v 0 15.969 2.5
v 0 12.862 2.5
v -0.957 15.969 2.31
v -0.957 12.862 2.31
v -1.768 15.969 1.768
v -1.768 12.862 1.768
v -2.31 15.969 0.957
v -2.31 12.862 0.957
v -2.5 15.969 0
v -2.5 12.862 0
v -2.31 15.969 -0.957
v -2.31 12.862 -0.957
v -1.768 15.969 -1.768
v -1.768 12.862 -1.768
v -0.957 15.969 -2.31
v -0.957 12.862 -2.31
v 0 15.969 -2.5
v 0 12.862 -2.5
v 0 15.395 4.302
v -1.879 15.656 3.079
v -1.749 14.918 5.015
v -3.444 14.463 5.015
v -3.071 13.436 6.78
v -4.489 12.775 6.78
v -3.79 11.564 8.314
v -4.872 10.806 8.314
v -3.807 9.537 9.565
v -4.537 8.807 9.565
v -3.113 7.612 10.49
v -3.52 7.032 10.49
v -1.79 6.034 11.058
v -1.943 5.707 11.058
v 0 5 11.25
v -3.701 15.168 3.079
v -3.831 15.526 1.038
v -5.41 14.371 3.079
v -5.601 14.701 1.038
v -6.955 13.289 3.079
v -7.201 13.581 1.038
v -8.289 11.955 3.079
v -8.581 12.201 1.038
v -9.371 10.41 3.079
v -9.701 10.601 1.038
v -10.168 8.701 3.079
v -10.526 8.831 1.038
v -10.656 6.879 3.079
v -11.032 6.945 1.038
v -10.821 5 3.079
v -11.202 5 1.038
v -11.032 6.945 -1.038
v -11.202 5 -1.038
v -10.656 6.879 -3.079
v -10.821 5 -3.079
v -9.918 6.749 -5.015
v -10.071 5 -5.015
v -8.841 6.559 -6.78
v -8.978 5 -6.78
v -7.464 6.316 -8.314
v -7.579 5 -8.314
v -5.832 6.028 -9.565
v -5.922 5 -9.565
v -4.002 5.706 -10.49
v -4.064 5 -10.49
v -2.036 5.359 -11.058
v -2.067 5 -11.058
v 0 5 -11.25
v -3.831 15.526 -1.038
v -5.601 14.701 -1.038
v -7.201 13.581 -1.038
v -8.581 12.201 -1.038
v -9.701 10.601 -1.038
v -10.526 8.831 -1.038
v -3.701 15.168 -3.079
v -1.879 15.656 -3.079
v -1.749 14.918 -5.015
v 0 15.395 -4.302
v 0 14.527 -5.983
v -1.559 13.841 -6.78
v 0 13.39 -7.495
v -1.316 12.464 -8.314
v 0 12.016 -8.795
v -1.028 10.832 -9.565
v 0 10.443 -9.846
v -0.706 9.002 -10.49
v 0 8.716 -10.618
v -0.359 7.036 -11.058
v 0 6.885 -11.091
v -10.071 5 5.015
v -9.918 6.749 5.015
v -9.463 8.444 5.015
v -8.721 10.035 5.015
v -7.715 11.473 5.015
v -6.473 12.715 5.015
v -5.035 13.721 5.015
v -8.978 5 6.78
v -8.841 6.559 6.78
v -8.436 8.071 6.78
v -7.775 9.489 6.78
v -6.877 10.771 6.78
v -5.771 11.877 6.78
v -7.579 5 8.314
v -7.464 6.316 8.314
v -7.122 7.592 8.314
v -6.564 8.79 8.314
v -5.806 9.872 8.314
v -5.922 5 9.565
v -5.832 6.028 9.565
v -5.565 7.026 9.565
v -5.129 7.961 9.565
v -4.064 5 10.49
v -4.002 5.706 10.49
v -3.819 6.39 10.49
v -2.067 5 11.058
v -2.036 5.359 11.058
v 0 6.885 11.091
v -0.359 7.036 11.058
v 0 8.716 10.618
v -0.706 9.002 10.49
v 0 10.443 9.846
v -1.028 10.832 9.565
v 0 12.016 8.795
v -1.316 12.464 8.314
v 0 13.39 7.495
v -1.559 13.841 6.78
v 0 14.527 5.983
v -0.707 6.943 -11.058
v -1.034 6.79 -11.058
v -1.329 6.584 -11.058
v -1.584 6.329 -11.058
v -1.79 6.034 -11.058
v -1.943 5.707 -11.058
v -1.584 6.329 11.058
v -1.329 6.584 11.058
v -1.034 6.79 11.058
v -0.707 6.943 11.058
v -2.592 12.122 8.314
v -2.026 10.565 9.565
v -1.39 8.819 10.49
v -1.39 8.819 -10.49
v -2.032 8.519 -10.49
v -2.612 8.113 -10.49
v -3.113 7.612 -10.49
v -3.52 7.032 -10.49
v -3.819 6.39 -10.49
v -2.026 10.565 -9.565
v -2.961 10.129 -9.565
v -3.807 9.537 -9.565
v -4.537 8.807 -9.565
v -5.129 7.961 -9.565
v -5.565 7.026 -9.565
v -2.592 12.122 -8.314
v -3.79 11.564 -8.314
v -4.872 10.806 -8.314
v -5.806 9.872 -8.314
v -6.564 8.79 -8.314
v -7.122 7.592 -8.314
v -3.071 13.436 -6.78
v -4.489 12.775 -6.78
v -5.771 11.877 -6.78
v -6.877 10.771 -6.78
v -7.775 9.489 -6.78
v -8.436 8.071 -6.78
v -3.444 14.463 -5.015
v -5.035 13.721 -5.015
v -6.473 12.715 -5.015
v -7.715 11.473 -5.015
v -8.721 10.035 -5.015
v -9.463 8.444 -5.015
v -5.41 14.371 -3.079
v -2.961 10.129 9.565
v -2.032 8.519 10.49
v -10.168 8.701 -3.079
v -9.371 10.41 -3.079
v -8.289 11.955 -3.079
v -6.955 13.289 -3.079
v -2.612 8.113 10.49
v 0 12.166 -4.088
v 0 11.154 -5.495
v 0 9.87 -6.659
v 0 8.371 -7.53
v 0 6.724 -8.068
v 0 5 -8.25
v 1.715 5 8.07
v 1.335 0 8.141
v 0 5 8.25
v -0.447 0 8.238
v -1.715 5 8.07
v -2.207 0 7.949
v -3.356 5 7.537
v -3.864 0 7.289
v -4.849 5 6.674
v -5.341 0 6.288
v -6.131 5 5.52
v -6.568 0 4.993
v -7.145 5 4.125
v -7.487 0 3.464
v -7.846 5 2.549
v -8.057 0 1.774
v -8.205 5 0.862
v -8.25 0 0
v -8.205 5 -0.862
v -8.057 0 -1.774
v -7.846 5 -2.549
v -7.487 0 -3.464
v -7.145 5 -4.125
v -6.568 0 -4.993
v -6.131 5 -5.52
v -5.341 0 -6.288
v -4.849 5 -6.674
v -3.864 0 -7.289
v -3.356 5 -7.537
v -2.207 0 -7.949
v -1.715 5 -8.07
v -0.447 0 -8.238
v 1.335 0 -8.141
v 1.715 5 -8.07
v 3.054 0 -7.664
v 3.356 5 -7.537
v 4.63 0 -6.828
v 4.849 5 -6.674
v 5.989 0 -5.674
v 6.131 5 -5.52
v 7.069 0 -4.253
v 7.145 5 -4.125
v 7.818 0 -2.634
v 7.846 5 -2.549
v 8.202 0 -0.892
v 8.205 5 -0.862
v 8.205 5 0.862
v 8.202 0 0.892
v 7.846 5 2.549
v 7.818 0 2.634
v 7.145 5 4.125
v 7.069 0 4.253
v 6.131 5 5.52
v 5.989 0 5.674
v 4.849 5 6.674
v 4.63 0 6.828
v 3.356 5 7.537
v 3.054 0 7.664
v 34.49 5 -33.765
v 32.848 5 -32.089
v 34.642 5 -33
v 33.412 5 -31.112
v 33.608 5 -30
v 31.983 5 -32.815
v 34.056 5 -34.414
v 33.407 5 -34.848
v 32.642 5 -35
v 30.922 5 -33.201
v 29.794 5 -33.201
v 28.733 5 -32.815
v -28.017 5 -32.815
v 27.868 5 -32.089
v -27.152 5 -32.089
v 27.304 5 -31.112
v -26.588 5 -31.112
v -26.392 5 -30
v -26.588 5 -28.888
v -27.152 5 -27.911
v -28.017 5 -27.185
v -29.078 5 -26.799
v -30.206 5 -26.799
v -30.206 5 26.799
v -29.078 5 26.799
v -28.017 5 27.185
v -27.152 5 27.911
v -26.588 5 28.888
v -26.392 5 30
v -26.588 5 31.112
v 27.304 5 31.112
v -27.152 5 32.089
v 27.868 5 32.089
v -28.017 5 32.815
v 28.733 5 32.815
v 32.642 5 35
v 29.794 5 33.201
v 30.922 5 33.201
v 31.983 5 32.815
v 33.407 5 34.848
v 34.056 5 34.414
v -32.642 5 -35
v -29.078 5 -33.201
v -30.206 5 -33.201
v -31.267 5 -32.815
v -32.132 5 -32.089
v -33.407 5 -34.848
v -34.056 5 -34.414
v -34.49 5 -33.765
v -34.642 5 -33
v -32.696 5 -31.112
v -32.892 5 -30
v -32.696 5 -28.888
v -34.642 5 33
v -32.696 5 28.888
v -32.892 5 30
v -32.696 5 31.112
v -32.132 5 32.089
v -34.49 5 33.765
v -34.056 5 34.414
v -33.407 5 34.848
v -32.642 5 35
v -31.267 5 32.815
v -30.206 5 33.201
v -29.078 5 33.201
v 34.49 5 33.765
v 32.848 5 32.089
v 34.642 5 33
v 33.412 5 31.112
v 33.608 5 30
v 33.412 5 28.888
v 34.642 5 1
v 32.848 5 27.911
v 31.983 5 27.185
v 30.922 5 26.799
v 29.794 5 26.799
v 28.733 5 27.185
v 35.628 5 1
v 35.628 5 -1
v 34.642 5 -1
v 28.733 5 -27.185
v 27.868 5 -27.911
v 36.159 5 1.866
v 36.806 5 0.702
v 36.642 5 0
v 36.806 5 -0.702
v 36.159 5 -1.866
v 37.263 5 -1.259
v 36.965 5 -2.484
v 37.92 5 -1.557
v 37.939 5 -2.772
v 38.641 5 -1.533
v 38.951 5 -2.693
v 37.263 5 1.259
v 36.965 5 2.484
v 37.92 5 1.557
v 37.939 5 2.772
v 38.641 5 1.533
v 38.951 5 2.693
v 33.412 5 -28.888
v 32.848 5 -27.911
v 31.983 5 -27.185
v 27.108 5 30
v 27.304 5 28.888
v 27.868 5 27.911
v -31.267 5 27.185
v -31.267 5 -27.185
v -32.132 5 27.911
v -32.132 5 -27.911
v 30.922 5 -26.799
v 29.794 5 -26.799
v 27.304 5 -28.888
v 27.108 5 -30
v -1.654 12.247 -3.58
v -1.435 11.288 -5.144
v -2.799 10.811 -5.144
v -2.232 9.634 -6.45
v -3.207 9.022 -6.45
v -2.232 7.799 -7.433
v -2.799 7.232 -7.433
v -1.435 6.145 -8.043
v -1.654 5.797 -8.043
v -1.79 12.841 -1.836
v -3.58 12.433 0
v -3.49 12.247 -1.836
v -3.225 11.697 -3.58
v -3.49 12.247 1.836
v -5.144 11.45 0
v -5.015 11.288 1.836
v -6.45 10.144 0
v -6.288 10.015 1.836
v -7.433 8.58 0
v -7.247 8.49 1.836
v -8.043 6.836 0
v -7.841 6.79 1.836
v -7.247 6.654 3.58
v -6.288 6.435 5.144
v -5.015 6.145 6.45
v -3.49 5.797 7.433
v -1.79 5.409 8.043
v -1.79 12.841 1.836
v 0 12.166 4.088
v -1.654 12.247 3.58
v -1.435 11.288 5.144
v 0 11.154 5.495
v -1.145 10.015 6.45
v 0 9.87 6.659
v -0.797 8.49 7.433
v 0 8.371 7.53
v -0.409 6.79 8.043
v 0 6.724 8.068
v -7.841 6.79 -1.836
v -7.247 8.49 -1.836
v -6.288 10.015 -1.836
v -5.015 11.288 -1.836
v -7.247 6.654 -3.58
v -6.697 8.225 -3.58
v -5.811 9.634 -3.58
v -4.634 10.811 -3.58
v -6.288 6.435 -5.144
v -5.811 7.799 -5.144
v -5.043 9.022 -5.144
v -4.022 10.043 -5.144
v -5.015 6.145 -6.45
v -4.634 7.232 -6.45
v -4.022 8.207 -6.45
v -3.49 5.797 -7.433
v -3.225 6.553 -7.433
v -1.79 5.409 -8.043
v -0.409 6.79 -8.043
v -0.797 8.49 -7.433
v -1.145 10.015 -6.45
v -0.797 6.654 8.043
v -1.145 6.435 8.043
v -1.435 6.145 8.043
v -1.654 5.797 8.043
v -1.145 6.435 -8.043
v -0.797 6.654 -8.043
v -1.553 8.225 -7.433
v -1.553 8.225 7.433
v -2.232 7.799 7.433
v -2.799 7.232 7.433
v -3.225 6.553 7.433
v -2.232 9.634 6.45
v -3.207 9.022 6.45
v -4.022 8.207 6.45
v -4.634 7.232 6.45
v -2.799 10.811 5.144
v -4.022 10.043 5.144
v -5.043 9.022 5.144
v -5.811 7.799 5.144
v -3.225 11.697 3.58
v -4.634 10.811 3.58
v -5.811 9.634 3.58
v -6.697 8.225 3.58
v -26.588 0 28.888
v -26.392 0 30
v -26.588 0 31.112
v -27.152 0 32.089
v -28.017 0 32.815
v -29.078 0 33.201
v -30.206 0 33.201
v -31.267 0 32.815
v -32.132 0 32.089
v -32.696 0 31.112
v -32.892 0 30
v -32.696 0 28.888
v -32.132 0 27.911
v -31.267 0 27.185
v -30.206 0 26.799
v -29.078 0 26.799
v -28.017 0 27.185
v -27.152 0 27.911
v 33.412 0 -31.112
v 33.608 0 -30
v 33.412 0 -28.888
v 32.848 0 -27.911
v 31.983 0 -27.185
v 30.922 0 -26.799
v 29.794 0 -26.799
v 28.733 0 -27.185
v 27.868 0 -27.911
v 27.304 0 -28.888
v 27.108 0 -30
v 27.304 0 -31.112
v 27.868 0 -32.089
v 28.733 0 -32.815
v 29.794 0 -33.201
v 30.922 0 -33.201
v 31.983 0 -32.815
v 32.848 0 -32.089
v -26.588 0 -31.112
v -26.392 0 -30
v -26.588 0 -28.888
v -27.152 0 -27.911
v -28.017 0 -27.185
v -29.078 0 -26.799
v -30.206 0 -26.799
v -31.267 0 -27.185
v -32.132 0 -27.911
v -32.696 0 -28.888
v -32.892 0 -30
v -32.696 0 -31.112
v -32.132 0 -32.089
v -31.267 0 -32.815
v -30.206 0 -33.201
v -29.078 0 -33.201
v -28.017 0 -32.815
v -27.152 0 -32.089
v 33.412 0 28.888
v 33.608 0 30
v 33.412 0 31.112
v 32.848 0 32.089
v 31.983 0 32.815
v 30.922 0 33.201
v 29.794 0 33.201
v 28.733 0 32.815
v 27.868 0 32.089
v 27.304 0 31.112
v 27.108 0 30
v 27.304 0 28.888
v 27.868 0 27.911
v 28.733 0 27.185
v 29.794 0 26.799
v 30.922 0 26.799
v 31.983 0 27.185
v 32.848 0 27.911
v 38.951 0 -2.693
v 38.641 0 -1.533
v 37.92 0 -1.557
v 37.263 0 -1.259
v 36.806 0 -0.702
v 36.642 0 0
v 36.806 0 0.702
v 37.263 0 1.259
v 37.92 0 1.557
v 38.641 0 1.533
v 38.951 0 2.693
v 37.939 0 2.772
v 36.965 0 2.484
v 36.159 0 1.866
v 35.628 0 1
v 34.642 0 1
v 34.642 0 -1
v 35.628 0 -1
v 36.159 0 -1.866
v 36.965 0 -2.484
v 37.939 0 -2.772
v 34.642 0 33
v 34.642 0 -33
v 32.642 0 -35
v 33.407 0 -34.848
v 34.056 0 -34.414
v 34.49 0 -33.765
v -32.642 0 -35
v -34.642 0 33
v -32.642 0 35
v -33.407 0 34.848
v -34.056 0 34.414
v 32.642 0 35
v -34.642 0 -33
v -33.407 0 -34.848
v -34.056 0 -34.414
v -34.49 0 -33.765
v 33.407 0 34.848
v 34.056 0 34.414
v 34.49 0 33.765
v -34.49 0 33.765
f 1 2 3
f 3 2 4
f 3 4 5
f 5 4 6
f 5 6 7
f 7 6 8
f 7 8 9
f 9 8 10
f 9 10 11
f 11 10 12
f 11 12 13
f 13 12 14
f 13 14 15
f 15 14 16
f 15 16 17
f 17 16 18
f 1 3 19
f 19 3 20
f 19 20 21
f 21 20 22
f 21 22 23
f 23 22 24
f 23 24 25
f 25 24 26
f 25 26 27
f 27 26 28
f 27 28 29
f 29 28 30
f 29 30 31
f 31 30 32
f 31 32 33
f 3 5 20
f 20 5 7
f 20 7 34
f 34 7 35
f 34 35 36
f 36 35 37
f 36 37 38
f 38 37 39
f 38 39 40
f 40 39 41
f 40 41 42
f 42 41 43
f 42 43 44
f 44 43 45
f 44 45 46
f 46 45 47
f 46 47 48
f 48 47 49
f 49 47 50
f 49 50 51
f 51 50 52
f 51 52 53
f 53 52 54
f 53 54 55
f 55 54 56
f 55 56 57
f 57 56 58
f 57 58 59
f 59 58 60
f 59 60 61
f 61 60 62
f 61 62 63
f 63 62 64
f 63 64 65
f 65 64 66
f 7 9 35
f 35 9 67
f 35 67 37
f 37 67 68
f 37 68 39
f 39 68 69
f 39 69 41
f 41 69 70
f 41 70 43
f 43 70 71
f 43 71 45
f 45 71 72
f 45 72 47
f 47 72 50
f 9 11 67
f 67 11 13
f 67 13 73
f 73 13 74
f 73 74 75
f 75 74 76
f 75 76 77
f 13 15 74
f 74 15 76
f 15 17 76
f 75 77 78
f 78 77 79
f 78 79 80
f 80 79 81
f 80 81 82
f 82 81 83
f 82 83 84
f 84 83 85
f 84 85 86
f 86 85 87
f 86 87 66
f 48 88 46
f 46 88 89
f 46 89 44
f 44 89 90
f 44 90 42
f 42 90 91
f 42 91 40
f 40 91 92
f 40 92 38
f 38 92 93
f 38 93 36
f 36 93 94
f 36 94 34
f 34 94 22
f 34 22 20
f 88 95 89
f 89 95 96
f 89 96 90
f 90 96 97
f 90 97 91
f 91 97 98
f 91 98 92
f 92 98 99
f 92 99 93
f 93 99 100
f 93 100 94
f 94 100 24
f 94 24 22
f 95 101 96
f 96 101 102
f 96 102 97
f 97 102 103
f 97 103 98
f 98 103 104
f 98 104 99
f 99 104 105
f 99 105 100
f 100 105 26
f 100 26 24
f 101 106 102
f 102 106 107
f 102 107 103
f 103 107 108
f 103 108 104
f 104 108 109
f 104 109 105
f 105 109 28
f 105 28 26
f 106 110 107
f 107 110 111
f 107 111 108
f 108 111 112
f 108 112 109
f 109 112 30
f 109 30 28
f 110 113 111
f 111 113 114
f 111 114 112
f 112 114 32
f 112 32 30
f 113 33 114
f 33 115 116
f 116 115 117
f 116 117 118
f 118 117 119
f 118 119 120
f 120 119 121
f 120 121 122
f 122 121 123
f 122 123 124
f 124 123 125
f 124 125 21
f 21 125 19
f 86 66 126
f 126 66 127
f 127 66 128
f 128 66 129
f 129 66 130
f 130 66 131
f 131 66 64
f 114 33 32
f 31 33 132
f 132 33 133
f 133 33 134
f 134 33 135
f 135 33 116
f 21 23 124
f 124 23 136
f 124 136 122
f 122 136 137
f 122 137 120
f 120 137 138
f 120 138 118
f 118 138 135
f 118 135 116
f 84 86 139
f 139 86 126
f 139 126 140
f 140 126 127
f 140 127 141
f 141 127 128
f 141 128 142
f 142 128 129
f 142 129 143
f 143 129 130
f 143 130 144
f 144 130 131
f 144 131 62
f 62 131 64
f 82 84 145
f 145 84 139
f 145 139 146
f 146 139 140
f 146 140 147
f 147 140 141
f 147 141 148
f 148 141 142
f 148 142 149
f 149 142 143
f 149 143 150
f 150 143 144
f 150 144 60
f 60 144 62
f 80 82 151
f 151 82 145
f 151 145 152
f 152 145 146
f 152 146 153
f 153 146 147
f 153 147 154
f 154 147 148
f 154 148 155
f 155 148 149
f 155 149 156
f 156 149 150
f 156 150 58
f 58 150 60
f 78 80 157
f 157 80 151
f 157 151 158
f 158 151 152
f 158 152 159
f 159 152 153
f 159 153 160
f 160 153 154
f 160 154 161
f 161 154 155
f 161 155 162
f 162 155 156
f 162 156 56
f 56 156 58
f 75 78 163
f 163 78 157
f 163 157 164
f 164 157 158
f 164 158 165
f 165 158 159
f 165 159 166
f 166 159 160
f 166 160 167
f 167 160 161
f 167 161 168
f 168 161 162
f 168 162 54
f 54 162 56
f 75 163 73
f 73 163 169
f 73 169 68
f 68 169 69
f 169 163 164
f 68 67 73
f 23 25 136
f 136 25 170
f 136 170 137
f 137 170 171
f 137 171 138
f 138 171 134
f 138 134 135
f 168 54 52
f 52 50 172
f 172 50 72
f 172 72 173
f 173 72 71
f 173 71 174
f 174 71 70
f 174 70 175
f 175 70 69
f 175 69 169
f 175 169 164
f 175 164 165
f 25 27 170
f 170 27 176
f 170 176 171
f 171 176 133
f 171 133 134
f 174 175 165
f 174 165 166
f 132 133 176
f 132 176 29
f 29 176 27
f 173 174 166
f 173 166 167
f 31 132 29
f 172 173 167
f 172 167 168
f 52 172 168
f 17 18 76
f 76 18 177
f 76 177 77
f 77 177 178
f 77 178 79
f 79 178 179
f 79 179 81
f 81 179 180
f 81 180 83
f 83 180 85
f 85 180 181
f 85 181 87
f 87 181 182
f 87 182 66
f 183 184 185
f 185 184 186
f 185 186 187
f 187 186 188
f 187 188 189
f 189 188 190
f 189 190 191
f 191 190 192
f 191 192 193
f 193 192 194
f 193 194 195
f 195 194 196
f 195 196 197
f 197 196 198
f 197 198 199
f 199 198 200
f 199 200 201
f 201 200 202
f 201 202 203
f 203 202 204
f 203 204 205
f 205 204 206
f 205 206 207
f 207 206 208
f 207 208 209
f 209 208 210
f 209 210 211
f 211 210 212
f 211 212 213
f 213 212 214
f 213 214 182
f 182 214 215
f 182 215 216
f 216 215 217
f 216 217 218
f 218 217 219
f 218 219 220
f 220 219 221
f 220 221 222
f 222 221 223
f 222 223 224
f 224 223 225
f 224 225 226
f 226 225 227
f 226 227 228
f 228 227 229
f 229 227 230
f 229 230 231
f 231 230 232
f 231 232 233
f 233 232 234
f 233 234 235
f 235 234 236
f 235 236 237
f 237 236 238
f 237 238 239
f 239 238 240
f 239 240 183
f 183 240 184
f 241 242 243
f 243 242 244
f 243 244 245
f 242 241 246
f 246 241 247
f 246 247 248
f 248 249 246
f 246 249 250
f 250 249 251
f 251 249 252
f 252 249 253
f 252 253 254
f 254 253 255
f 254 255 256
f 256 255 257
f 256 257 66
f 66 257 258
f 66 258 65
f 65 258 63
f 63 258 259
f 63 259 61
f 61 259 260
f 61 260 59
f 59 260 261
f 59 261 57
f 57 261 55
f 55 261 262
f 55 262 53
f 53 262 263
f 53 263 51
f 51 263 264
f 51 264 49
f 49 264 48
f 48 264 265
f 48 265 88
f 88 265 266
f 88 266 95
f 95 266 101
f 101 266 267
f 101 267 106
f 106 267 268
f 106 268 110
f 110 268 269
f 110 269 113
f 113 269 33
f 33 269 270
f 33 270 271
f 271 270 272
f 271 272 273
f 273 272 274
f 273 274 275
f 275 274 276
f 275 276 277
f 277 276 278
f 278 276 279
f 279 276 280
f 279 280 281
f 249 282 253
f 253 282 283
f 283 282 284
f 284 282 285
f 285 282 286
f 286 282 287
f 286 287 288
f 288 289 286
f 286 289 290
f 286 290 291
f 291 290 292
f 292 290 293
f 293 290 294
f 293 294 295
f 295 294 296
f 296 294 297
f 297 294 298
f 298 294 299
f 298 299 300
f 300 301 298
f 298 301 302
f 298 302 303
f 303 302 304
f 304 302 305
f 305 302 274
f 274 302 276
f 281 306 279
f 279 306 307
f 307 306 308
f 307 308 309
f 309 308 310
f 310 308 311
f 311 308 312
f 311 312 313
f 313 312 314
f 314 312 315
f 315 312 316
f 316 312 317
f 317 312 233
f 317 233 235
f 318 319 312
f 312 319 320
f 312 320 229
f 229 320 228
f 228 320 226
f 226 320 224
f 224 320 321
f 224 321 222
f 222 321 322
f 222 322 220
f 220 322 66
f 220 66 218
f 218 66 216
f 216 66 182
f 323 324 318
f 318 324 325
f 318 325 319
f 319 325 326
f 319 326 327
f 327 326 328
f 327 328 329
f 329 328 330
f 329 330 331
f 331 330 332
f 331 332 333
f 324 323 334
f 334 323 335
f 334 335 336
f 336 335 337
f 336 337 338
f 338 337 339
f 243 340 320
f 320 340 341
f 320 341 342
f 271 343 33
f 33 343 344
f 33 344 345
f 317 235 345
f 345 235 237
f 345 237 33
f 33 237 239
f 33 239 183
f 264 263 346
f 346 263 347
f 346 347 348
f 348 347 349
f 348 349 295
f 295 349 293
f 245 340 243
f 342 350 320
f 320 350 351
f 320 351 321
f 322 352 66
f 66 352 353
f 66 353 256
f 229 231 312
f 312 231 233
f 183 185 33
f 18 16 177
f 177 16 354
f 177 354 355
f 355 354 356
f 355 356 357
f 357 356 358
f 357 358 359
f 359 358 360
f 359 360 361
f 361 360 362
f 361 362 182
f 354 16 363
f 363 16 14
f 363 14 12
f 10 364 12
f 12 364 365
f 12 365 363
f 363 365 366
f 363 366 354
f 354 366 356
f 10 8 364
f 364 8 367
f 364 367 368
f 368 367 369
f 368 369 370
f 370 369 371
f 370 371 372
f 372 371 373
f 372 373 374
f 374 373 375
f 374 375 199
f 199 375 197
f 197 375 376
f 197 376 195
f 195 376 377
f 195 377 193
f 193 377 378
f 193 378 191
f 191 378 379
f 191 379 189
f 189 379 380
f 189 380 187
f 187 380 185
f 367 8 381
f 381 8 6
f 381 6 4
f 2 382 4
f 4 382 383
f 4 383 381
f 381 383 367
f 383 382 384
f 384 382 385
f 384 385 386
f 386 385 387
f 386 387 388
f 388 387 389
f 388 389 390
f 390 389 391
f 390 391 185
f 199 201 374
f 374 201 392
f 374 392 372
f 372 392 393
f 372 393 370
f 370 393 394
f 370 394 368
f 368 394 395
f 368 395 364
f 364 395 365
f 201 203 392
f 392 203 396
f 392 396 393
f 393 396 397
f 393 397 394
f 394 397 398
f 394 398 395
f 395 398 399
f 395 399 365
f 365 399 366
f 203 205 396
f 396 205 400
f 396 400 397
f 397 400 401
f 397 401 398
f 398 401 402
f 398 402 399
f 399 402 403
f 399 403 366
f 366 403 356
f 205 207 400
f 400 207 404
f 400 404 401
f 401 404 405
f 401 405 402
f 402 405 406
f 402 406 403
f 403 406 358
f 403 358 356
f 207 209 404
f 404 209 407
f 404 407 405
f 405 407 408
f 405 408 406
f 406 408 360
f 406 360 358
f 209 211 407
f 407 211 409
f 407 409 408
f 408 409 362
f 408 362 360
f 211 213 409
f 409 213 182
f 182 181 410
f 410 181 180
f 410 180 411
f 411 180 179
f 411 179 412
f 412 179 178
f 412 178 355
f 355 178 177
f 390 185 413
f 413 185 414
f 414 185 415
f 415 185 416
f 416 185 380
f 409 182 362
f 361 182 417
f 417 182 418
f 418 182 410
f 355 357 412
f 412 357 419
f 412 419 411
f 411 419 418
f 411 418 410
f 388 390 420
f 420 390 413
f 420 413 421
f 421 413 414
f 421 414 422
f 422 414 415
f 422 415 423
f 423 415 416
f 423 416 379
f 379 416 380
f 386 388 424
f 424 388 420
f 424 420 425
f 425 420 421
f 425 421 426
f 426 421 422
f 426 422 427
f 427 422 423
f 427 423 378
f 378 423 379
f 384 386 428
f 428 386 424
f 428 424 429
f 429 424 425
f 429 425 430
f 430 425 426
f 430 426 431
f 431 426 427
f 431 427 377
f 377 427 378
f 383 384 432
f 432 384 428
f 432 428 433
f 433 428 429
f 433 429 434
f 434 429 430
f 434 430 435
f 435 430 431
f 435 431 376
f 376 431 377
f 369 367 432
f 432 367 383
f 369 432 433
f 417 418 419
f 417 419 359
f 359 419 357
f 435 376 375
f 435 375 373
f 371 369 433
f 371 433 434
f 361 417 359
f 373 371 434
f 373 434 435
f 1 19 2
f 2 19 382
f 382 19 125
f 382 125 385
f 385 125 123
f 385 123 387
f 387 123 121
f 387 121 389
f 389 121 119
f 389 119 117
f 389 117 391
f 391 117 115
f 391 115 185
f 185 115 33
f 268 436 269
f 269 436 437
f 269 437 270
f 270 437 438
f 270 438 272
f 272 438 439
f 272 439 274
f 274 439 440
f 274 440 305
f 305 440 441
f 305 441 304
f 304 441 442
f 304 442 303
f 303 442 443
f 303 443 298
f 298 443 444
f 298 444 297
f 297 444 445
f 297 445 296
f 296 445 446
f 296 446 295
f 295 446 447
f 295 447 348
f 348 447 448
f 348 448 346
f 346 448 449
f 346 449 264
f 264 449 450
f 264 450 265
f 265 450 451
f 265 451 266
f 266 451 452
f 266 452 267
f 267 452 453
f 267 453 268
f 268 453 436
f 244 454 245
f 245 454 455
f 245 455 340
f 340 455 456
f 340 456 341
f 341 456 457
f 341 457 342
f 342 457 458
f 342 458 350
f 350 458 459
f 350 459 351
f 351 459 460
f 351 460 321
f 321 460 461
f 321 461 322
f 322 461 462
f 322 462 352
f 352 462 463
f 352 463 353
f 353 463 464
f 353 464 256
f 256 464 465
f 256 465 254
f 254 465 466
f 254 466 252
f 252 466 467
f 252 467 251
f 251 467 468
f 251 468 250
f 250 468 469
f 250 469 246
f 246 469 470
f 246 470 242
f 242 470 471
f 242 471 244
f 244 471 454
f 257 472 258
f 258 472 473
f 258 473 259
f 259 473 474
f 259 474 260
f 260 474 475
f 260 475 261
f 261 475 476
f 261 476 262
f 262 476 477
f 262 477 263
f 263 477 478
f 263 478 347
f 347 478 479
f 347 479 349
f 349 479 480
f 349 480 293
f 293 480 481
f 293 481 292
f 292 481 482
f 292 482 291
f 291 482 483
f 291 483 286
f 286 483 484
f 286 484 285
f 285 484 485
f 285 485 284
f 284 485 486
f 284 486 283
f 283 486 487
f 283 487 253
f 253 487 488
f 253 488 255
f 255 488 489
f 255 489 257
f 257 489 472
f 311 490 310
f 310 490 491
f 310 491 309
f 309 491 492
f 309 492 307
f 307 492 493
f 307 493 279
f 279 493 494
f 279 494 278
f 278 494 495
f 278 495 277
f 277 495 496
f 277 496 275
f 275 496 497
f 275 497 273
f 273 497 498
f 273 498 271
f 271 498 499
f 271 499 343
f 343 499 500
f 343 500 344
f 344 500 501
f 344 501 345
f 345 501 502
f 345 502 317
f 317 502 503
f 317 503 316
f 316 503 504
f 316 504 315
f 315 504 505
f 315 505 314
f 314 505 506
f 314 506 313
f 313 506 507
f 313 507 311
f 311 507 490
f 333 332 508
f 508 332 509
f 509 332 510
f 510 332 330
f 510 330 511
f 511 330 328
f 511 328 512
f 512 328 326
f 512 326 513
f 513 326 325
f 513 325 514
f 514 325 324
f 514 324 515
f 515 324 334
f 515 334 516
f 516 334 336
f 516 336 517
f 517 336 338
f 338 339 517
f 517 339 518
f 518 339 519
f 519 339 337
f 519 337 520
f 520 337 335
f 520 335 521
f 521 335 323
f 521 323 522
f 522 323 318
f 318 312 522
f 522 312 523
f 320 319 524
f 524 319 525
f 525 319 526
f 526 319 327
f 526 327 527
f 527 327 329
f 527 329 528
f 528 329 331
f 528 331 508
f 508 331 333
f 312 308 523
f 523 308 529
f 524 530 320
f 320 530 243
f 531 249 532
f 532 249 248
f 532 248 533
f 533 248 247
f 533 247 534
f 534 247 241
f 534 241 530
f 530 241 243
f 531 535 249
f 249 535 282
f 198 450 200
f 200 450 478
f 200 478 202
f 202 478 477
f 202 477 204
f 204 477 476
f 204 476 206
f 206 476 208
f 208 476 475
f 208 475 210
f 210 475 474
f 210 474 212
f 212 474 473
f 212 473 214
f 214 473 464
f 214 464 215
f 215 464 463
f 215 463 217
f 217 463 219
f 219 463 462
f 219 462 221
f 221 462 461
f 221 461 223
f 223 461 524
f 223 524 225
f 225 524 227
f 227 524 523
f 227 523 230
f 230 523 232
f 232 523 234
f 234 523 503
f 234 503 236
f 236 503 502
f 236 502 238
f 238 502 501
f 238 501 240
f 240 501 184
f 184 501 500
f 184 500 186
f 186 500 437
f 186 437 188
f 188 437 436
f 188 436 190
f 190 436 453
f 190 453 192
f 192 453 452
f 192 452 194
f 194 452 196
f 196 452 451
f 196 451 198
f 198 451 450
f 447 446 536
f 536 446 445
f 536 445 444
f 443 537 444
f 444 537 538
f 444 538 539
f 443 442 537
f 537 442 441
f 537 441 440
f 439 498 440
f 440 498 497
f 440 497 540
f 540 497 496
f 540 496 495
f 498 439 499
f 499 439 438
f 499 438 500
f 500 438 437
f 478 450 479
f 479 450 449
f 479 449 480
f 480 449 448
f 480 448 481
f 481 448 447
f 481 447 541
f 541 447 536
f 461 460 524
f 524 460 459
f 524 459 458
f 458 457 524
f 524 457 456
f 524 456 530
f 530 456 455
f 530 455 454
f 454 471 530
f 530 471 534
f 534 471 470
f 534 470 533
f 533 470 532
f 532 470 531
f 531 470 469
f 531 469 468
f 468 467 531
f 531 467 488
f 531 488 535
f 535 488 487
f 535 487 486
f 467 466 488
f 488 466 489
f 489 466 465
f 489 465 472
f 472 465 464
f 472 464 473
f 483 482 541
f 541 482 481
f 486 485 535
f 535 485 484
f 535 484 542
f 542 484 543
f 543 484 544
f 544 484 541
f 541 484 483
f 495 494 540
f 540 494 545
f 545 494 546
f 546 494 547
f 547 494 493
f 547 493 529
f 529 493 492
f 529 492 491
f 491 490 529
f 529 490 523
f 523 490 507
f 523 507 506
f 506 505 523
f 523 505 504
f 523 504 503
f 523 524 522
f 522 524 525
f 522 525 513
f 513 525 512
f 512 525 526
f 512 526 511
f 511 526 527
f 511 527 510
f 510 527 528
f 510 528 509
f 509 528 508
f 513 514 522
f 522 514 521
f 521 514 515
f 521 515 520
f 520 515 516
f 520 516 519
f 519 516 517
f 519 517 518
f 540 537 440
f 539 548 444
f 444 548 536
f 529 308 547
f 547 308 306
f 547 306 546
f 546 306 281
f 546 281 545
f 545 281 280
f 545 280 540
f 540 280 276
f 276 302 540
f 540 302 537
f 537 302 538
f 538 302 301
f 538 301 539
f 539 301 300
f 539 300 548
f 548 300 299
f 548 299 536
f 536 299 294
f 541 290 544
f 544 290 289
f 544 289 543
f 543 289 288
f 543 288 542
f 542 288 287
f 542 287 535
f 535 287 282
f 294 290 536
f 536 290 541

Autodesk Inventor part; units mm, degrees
ref_plane "YZ Plane" through (0, 0, 0) normal (1, 0, 0) x (0, 1, 0)
ref_plane "XZ Plane" through (0, 0, 0) normal (0, 1, 0) x (-1, 0, 0)
ref_plane "XY Plane" through (0, 0, 0) normal (0, 0, 1) x (1, 0, 0)
sketch "Sketch1" plane through (0, 0, 0) normal (0, 1, 0) x (-1, 0, 0)
  line L0 (-34.6421, 35) -> (34.6421, 35)
  line L1 (34.6421, 35) -> (34.6421, -35)
  line L2 (34.6421, -35) -> (-34.6421, -35)
  line L3 (-34.6421, -35) -> (-34.6421, 35)
  line L4 (-34.6421, 35) -> (34.6421, -35) construction
  line L5 (34.6421, 35) -> (-34.6421, -35) construction
  point P0 (0, 0)
  dimension "d0" = 70
extrude "Extrusion1" add sketch "Sketch1" along normal blind 5
fillet "Fillet1" radius 2 4 edges at (-34.6421, 2.5, -35) (-34.6421, 2.5, 35) (34.6421, 2.5, 35) (34.6421, 2.5, -35)
sketch "Sketch2" plane through (0, 0, 0) normal (0, -1, 0) x (1, 0, 0)
  line L0 (36.6421, 1) -> (34.6421, 1)
  line L1 (34.6421, 1) -> (34.6421, -1)
  line L2 (34.6421, -1) -> (36.6421, -1)
  line L3 (36.6421, -1) -> (36.6421, 1)
  line L4 (36.6421, 1) -> (34.6421, -1) construction
  line L5 (34.6421, 1) -> (36.6421, -1) construction
  arc A0 (38.6405, 1.5334) -> (38.6405, -1.5334) centre (38.2296, 0) ccw
  line L6 (34.6421, 33) -> (34.6421, -33) projected
  line L7 (35.6421, 0) -> (34.6421, 0) construction
  arc A1 (38.9511, 2.6925) -> (38.9511, -2.6925) centre (38.2296, 0) ccw
  line L8 (38.9511, 2.6925) -> (38.6405, 1.5334)
  line L9 (38.6405, -1.5334) -> (38.9511, -2.6925)
  point P0 (0, 0)
  point P1 (36.6421, 0)
  point P2 (35.6277, 1)
  point P3 (35.6277, -1)
  dimension "d4" = 150
  dimension "d5" = 1.5875
  dimension "d6" = 2
  dimension "d8" = 150
  dimension "d9" = 1.2
extrude "Extrusion2" add sketch "Sketch2" against normal up to surface (5 mm away)
sketch "Sketch3" plane through (0, 5, 0) normal (0, 1, 0) x (1, 0, 0)
  circle A0 centre (-29.6421, -30) radius 3.25
  line L0 (-34.6421, 33) -> (-34.6421, -33) projected
  line L1 (-32.6421, -35) -> (32.6421, -35) projected
  circle A1 centre (-29.6421, 30) radius 3.25
  circle A2 centre (30.3579, -30) radius 3.25
  circle A3 centre (30.3579, 30) radius 3.25
  point P0 (0, 0)
  dimension "d12" = 6.5
  dimension "d15" = 60
  dimension "d18" = 60
  dimension "d21" = 5
  dimension "d22" = 5
extrude "Extrusion3" cut sketch "Sketch3" against normal up to surface (5 mm away)
sketch "Sketch4" plane through (0, 5, 0) normal (0, 1, 0) x (1, 0, 0)
  arc A0 (0, 8.25) -> (0, -8.25) centre (0, 0) ccw
  arc A1 (0, 11.25) -> (0, -11.25) centre (0, 0) ccw
  line L0 (0, 8.25) -> (0, 11.25)
  line L1 (0, -8.25) -> (0, -11.25)
  line L2 (0, 0) -> (0, 8.25) construction
  dimension "d25" = 8.25
  dimension "d26" = 3
  dimension "d27" = 180
revolve "Revolution1" add sketch "Sketch4" angle 90 about axis through (0, 5, 8.25) along (0, 0, -1)
sketch "Sketch5" plane through (0, 5, 0) normal (0, 1, 0) x (1, 0, 0)
  line L0 (0, 8.25) -> (0, -8.25) projected
  circle A0 centre (0, 0) radius 8.25
extrude "Extrusion4" cut sketch "Sketch5" against normal up to surface (5 mm away)
sketch "Sketch6" plane through (0, 5, 0) normal (0, 1, 0) x (1, 0, 0)
  circle A0 centre (0, 0) radius 2.5
  dimension "d31" = 5
extrude "Extrusion5" cut sketch "Sketch6" along normal through all
equation "\"d0\" = cradle_width"
equation "\"d1\" = cradle_slider_thickness"
equation "\"d5\" = 0.5 * tubing_diameter"
equation "\"d10\" = cradle_slider_thickness"
equation "\"d12\" = rod_diameter + rod_free_tolerance"
equation "\"d15\" = rod_dist"
equation "\"d18\" = rod_dist"
equation "\"d21\" = -0.5 * rod_dist + 0.5 * cradle_width"
equation "\"d22\" = -0.5 * rod_dist + 0.5 * cradle_width"
equation "\"d25\" = 0.5 * tube_diameter"
equation "\"d31\" = tube_tip_diameter"
equation "\"cradle_width\" = 70"
equation "\"cradle_slider_thickness\" = 5"
equation "\"tubing_diameter\" = 3.175"
equation "\"rod_diameter\" = 6"
equation "\"rod_free_tolerance\" = 0.5"
equation "\"tube_diameter\" = 16.5"
equation "\"tube_tip_diameter\" = 5"
equation "\"rod_dist\" = 60"
properties part number "cradle_slider"
